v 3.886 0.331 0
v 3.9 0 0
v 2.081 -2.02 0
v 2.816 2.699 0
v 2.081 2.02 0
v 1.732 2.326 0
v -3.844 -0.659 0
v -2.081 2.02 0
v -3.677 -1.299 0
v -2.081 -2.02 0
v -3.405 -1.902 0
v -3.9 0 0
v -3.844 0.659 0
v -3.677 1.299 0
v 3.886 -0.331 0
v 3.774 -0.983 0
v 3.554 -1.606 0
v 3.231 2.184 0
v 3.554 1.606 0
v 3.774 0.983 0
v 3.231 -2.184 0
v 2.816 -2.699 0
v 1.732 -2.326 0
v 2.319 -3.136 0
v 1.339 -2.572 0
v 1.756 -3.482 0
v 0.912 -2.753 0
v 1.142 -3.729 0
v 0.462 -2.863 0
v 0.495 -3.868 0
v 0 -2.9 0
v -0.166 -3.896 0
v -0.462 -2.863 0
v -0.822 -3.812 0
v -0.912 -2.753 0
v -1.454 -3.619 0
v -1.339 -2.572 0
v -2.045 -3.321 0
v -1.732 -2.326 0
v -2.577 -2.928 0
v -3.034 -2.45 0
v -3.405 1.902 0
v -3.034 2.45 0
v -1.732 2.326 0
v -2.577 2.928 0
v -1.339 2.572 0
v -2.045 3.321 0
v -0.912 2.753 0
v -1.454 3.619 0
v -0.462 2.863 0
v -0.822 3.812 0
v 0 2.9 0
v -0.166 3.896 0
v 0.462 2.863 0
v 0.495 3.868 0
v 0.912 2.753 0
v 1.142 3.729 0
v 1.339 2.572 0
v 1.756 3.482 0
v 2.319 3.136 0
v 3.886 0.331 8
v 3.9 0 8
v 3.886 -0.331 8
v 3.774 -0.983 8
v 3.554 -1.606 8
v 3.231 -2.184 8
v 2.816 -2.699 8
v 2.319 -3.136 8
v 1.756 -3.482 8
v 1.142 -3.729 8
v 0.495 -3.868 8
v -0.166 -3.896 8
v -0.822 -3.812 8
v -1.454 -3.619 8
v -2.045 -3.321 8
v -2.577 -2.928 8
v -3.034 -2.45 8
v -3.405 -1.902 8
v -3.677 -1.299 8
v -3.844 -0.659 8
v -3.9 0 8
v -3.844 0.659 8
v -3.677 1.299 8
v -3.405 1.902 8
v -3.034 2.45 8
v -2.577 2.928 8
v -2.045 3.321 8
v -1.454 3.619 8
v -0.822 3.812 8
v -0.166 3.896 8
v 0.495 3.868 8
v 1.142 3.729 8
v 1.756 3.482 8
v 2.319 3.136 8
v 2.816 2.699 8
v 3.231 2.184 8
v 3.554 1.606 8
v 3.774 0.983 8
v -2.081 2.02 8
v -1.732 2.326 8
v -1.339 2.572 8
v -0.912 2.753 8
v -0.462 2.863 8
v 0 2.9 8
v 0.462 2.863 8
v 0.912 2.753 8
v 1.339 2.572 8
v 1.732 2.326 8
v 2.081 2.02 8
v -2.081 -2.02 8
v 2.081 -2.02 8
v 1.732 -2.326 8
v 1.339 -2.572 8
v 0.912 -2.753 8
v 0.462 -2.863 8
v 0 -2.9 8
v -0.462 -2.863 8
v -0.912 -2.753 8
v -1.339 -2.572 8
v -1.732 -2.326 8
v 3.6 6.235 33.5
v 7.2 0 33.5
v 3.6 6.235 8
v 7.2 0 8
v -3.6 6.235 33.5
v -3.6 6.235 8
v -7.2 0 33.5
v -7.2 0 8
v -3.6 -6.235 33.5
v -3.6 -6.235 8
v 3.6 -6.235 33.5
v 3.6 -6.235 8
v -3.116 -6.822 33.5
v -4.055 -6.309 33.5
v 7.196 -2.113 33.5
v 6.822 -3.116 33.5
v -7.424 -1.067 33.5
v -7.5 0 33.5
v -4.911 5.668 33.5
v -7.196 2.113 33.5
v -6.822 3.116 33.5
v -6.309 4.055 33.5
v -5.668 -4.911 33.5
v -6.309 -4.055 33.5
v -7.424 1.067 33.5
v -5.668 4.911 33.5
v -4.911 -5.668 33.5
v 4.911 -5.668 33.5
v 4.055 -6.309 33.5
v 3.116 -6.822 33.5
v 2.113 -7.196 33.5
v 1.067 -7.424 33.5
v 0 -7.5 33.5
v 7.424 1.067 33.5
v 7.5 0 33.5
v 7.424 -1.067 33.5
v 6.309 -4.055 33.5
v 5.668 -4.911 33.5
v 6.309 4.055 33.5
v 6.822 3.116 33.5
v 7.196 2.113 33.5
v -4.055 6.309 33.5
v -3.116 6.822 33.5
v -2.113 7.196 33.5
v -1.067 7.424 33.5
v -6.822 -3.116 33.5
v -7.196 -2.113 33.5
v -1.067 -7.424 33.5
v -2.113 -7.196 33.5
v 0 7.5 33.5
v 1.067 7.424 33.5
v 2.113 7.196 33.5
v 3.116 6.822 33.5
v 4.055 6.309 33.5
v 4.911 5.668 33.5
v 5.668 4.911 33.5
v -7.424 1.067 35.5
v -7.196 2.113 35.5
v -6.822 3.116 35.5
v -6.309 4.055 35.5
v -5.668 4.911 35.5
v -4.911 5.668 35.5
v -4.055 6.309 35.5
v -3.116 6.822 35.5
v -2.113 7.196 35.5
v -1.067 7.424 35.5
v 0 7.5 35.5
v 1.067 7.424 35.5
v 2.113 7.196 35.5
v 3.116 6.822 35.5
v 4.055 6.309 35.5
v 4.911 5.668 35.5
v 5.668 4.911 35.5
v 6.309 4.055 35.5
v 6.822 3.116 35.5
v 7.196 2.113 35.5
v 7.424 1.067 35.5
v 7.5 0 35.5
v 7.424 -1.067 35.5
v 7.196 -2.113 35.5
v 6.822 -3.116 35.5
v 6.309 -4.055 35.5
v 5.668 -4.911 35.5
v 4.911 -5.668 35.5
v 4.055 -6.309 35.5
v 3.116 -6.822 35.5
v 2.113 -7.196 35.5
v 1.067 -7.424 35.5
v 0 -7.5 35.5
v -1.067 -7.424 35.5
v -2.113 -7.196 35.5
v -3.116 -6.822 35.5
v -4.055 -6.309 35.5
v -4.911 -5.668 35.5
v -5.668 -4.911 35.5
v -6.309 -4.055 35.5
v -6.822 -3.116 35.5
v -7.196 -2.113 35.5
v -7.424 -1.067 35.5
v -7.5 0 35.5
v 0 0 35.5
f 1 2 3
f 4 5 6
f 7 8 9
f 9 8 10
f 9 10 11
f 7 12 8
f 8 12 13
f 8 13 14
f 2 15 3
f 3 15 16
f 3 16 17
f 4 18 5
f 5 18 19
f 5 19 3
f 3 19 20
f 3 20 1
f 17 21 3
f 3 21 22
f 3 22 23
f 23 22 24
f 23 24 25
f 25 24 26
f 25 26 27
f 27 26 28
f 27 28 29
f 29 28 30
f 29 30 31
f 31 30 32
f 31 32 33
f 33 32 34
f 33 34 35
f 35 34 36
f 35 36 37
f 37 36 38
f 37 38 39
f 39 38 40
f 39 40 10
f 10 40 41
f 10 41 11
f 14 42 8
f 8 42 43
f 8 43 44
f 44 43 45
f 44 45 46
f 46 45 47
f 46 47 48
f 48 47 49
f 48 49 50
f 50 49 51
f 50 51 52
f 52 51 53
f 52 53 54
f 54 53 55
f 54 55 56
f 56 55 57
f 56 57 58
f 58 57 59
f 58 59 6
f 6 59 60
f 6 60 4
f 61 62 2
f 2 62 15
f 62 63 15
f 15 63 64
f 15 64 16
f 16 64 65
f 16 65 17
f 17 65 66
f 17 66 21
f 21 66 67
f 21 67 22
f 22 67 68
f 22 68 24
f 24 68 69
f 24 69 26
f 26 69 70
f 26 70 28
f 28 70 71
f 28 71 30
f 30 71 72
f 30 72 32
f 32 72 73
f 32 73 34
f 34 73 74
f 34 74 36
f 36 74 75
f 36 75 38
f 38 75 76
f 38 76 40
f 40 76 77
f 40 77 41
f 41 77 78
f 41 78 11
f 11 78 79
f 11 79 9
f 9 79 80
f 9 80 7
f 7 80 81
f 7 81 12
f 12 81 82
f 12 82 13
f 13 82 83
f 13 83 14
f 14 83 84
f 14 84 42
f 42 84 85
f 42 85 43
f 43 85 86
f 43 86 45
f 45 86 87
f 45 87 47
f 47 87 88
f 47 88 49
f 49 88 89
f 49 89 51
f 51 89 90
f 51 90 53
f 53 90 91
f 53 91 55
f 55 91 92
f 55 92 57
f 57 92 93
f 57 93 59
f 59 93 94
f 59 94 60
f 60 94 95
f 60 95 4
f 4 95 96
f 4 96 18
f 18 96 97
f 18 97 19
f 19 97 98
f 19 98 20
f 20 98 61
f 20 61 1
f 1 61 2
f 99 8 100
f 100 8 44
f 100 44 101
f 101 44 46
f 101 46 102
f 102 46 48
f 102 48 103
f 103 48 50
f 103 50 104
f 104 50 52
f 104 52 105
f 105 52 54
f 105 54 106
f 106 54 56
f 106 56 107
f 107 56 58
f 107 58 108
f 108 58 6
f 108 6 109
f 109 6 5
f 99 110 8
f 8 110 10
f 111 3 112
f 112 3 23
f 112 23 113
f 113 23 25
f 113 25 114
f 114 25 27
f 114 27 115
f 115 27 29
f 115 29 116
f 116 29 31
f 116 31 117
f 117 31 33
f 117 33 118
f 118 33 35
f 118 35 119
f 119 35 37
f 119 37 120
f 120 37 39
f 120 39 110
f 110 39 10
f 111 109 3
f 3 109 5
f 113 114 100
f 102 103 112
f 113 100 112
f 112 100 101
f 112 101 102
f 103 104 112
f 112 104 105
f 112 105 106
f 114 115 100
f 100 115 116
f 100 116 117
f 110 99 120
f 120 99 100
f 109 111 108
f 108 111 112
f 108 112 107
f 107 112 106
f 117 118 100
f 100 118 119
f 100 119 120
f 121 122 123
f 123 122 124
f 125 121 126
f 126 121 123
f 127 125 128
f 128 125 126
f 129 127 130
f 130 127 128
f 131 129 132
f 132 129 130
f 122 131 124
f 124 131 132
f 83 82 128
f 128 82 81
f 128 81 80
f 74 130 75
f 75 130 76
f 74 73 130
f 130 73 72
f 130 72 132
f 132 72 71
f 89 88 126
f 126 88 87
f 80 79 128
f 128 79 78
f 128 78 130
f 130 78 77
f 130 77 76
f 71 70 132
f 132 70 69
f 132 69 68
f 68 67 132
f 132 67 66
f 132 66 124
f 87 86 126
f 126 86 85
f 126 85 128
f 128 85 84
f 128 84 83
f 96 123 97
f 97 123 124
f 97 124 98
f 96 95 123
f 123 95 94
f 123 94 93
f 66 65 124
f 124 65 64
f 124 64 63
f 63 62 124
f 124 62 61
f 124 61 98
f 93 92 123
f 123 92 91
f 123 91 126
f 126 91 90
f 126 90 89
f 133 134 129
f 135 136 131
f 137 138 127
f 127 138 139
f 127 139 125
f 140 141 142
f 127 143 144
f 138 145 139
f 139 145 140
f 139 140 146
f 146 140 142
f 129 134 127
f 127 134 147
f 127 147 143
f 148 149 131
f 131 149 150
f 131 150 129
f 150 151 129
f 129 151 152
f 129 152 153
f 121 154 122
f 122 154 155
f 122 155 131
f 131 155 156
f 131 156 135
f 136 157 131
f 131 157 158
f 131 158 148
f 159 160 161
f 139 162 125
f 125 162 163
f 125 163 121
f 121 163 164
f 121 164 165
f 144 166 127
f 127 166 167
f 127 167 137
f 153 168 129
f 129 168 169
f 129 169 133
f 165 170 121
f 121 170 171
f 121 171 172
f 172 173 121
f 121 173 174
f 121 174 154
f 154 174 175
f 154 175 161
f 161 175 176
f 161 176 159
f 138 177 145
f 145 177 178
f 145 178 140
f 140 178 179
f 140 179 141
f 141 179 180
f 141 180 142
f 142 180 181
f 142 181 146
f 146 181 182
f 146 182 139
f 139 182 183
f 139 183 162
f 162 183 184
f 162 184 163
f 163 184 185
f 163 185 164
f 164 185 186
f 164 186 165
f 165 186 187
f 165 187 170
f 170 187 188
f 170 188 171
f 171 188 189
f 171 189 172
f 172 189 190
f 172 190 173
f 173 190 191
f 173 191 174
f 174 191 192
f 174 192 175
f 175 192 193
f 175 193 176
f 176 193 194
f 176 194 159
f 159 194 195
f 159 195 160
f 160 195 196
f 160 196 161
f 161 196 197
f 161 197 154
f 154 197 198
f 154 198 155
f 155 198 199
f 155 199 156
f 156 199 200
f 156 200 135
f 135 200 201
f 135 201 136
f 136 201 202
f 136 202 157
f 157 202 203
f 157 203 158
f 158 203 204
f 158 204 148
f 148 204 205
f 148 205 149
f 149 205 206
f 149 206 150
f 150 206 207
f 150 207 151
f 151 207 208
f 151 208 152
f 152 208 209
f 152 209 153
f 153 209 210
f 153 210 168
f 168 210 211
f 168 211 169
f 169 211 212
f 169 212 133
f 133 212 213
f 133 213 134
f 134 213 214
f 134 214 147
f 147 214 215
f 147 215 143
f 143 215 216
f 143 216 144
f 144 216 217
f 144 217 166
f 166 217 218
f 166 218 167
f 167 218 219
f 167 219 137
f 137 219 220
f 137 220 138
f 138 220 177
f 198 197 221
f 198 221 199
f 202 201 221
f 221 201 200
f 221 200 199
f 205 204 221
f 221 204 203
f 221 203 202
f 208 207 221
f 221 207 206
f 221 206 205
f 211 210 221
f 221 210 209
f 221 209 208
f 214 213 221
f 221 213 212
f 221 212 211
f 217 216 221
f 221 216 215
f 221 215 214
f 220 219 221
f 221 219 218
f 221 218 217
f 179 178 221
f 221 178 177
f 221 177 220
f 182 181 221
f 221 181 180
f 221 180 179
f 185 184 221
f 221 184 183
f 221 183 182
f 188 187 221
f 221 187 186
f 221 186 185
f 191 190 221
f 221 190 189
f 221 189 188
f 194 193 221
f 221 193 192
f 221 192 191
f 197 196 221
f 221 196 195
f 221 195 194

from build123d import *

# Parameters (mm, degrees)
SKETCH1_R           = 3.9
BOSS_EXTRUDE1_DEPTH = 8
BOSS_EXTRUDE2_DEPTH = 25.5
SKETCH3_R           = 7.5
BOSS_EXTRUDE3_DEPTH = 2


with BuildPart() as part:
    # Sketch1 → Boss-Extrude1 (new body)
    with BuildSketch(Plane.XY):
        Circle(SKETCH1_R)
        with BuildLine():
            Line((-2.080769089, -2.02), (-2.080769089, 2.02))
            ThreePointArc((-2.080769089, 2.02), (0, 2.9), (2.080769089, 2.02))
            Line((2.080769089, 2.02), (2.080769089, -2.02))
            ThreePointArc((2.080769089, -2.02), (0, -2.9), (-2.080769089, -2.02))
        make_face(mode=Mode.SUBTRACT)
    extrude(amount=BOSS_EXTRUDE1_DEPTH)

    # Sketch2 → Boss-Extrude2 (add)
    with BuildSketch(Plane.XY.offset(8)):
        Polygon((3.6, 6.235382907), (-3.6, 6.235382907), (-7.2, 0), (-3.6, -6.235382907), (3.6, -6.235382907), (7.2, 0), align=None)
    extrude(amount=BOSS_EXTRUDE2_DEPTH)

    # Sketch3 → Boss-Extrude3 (add)
    with BuildSketch(Plane.XY.offset(33.5)):
        Circle(SKETCH3_R)
    extrude(amount=BOSS_EXTRUDE3_DEPTH)


solid = part.part
